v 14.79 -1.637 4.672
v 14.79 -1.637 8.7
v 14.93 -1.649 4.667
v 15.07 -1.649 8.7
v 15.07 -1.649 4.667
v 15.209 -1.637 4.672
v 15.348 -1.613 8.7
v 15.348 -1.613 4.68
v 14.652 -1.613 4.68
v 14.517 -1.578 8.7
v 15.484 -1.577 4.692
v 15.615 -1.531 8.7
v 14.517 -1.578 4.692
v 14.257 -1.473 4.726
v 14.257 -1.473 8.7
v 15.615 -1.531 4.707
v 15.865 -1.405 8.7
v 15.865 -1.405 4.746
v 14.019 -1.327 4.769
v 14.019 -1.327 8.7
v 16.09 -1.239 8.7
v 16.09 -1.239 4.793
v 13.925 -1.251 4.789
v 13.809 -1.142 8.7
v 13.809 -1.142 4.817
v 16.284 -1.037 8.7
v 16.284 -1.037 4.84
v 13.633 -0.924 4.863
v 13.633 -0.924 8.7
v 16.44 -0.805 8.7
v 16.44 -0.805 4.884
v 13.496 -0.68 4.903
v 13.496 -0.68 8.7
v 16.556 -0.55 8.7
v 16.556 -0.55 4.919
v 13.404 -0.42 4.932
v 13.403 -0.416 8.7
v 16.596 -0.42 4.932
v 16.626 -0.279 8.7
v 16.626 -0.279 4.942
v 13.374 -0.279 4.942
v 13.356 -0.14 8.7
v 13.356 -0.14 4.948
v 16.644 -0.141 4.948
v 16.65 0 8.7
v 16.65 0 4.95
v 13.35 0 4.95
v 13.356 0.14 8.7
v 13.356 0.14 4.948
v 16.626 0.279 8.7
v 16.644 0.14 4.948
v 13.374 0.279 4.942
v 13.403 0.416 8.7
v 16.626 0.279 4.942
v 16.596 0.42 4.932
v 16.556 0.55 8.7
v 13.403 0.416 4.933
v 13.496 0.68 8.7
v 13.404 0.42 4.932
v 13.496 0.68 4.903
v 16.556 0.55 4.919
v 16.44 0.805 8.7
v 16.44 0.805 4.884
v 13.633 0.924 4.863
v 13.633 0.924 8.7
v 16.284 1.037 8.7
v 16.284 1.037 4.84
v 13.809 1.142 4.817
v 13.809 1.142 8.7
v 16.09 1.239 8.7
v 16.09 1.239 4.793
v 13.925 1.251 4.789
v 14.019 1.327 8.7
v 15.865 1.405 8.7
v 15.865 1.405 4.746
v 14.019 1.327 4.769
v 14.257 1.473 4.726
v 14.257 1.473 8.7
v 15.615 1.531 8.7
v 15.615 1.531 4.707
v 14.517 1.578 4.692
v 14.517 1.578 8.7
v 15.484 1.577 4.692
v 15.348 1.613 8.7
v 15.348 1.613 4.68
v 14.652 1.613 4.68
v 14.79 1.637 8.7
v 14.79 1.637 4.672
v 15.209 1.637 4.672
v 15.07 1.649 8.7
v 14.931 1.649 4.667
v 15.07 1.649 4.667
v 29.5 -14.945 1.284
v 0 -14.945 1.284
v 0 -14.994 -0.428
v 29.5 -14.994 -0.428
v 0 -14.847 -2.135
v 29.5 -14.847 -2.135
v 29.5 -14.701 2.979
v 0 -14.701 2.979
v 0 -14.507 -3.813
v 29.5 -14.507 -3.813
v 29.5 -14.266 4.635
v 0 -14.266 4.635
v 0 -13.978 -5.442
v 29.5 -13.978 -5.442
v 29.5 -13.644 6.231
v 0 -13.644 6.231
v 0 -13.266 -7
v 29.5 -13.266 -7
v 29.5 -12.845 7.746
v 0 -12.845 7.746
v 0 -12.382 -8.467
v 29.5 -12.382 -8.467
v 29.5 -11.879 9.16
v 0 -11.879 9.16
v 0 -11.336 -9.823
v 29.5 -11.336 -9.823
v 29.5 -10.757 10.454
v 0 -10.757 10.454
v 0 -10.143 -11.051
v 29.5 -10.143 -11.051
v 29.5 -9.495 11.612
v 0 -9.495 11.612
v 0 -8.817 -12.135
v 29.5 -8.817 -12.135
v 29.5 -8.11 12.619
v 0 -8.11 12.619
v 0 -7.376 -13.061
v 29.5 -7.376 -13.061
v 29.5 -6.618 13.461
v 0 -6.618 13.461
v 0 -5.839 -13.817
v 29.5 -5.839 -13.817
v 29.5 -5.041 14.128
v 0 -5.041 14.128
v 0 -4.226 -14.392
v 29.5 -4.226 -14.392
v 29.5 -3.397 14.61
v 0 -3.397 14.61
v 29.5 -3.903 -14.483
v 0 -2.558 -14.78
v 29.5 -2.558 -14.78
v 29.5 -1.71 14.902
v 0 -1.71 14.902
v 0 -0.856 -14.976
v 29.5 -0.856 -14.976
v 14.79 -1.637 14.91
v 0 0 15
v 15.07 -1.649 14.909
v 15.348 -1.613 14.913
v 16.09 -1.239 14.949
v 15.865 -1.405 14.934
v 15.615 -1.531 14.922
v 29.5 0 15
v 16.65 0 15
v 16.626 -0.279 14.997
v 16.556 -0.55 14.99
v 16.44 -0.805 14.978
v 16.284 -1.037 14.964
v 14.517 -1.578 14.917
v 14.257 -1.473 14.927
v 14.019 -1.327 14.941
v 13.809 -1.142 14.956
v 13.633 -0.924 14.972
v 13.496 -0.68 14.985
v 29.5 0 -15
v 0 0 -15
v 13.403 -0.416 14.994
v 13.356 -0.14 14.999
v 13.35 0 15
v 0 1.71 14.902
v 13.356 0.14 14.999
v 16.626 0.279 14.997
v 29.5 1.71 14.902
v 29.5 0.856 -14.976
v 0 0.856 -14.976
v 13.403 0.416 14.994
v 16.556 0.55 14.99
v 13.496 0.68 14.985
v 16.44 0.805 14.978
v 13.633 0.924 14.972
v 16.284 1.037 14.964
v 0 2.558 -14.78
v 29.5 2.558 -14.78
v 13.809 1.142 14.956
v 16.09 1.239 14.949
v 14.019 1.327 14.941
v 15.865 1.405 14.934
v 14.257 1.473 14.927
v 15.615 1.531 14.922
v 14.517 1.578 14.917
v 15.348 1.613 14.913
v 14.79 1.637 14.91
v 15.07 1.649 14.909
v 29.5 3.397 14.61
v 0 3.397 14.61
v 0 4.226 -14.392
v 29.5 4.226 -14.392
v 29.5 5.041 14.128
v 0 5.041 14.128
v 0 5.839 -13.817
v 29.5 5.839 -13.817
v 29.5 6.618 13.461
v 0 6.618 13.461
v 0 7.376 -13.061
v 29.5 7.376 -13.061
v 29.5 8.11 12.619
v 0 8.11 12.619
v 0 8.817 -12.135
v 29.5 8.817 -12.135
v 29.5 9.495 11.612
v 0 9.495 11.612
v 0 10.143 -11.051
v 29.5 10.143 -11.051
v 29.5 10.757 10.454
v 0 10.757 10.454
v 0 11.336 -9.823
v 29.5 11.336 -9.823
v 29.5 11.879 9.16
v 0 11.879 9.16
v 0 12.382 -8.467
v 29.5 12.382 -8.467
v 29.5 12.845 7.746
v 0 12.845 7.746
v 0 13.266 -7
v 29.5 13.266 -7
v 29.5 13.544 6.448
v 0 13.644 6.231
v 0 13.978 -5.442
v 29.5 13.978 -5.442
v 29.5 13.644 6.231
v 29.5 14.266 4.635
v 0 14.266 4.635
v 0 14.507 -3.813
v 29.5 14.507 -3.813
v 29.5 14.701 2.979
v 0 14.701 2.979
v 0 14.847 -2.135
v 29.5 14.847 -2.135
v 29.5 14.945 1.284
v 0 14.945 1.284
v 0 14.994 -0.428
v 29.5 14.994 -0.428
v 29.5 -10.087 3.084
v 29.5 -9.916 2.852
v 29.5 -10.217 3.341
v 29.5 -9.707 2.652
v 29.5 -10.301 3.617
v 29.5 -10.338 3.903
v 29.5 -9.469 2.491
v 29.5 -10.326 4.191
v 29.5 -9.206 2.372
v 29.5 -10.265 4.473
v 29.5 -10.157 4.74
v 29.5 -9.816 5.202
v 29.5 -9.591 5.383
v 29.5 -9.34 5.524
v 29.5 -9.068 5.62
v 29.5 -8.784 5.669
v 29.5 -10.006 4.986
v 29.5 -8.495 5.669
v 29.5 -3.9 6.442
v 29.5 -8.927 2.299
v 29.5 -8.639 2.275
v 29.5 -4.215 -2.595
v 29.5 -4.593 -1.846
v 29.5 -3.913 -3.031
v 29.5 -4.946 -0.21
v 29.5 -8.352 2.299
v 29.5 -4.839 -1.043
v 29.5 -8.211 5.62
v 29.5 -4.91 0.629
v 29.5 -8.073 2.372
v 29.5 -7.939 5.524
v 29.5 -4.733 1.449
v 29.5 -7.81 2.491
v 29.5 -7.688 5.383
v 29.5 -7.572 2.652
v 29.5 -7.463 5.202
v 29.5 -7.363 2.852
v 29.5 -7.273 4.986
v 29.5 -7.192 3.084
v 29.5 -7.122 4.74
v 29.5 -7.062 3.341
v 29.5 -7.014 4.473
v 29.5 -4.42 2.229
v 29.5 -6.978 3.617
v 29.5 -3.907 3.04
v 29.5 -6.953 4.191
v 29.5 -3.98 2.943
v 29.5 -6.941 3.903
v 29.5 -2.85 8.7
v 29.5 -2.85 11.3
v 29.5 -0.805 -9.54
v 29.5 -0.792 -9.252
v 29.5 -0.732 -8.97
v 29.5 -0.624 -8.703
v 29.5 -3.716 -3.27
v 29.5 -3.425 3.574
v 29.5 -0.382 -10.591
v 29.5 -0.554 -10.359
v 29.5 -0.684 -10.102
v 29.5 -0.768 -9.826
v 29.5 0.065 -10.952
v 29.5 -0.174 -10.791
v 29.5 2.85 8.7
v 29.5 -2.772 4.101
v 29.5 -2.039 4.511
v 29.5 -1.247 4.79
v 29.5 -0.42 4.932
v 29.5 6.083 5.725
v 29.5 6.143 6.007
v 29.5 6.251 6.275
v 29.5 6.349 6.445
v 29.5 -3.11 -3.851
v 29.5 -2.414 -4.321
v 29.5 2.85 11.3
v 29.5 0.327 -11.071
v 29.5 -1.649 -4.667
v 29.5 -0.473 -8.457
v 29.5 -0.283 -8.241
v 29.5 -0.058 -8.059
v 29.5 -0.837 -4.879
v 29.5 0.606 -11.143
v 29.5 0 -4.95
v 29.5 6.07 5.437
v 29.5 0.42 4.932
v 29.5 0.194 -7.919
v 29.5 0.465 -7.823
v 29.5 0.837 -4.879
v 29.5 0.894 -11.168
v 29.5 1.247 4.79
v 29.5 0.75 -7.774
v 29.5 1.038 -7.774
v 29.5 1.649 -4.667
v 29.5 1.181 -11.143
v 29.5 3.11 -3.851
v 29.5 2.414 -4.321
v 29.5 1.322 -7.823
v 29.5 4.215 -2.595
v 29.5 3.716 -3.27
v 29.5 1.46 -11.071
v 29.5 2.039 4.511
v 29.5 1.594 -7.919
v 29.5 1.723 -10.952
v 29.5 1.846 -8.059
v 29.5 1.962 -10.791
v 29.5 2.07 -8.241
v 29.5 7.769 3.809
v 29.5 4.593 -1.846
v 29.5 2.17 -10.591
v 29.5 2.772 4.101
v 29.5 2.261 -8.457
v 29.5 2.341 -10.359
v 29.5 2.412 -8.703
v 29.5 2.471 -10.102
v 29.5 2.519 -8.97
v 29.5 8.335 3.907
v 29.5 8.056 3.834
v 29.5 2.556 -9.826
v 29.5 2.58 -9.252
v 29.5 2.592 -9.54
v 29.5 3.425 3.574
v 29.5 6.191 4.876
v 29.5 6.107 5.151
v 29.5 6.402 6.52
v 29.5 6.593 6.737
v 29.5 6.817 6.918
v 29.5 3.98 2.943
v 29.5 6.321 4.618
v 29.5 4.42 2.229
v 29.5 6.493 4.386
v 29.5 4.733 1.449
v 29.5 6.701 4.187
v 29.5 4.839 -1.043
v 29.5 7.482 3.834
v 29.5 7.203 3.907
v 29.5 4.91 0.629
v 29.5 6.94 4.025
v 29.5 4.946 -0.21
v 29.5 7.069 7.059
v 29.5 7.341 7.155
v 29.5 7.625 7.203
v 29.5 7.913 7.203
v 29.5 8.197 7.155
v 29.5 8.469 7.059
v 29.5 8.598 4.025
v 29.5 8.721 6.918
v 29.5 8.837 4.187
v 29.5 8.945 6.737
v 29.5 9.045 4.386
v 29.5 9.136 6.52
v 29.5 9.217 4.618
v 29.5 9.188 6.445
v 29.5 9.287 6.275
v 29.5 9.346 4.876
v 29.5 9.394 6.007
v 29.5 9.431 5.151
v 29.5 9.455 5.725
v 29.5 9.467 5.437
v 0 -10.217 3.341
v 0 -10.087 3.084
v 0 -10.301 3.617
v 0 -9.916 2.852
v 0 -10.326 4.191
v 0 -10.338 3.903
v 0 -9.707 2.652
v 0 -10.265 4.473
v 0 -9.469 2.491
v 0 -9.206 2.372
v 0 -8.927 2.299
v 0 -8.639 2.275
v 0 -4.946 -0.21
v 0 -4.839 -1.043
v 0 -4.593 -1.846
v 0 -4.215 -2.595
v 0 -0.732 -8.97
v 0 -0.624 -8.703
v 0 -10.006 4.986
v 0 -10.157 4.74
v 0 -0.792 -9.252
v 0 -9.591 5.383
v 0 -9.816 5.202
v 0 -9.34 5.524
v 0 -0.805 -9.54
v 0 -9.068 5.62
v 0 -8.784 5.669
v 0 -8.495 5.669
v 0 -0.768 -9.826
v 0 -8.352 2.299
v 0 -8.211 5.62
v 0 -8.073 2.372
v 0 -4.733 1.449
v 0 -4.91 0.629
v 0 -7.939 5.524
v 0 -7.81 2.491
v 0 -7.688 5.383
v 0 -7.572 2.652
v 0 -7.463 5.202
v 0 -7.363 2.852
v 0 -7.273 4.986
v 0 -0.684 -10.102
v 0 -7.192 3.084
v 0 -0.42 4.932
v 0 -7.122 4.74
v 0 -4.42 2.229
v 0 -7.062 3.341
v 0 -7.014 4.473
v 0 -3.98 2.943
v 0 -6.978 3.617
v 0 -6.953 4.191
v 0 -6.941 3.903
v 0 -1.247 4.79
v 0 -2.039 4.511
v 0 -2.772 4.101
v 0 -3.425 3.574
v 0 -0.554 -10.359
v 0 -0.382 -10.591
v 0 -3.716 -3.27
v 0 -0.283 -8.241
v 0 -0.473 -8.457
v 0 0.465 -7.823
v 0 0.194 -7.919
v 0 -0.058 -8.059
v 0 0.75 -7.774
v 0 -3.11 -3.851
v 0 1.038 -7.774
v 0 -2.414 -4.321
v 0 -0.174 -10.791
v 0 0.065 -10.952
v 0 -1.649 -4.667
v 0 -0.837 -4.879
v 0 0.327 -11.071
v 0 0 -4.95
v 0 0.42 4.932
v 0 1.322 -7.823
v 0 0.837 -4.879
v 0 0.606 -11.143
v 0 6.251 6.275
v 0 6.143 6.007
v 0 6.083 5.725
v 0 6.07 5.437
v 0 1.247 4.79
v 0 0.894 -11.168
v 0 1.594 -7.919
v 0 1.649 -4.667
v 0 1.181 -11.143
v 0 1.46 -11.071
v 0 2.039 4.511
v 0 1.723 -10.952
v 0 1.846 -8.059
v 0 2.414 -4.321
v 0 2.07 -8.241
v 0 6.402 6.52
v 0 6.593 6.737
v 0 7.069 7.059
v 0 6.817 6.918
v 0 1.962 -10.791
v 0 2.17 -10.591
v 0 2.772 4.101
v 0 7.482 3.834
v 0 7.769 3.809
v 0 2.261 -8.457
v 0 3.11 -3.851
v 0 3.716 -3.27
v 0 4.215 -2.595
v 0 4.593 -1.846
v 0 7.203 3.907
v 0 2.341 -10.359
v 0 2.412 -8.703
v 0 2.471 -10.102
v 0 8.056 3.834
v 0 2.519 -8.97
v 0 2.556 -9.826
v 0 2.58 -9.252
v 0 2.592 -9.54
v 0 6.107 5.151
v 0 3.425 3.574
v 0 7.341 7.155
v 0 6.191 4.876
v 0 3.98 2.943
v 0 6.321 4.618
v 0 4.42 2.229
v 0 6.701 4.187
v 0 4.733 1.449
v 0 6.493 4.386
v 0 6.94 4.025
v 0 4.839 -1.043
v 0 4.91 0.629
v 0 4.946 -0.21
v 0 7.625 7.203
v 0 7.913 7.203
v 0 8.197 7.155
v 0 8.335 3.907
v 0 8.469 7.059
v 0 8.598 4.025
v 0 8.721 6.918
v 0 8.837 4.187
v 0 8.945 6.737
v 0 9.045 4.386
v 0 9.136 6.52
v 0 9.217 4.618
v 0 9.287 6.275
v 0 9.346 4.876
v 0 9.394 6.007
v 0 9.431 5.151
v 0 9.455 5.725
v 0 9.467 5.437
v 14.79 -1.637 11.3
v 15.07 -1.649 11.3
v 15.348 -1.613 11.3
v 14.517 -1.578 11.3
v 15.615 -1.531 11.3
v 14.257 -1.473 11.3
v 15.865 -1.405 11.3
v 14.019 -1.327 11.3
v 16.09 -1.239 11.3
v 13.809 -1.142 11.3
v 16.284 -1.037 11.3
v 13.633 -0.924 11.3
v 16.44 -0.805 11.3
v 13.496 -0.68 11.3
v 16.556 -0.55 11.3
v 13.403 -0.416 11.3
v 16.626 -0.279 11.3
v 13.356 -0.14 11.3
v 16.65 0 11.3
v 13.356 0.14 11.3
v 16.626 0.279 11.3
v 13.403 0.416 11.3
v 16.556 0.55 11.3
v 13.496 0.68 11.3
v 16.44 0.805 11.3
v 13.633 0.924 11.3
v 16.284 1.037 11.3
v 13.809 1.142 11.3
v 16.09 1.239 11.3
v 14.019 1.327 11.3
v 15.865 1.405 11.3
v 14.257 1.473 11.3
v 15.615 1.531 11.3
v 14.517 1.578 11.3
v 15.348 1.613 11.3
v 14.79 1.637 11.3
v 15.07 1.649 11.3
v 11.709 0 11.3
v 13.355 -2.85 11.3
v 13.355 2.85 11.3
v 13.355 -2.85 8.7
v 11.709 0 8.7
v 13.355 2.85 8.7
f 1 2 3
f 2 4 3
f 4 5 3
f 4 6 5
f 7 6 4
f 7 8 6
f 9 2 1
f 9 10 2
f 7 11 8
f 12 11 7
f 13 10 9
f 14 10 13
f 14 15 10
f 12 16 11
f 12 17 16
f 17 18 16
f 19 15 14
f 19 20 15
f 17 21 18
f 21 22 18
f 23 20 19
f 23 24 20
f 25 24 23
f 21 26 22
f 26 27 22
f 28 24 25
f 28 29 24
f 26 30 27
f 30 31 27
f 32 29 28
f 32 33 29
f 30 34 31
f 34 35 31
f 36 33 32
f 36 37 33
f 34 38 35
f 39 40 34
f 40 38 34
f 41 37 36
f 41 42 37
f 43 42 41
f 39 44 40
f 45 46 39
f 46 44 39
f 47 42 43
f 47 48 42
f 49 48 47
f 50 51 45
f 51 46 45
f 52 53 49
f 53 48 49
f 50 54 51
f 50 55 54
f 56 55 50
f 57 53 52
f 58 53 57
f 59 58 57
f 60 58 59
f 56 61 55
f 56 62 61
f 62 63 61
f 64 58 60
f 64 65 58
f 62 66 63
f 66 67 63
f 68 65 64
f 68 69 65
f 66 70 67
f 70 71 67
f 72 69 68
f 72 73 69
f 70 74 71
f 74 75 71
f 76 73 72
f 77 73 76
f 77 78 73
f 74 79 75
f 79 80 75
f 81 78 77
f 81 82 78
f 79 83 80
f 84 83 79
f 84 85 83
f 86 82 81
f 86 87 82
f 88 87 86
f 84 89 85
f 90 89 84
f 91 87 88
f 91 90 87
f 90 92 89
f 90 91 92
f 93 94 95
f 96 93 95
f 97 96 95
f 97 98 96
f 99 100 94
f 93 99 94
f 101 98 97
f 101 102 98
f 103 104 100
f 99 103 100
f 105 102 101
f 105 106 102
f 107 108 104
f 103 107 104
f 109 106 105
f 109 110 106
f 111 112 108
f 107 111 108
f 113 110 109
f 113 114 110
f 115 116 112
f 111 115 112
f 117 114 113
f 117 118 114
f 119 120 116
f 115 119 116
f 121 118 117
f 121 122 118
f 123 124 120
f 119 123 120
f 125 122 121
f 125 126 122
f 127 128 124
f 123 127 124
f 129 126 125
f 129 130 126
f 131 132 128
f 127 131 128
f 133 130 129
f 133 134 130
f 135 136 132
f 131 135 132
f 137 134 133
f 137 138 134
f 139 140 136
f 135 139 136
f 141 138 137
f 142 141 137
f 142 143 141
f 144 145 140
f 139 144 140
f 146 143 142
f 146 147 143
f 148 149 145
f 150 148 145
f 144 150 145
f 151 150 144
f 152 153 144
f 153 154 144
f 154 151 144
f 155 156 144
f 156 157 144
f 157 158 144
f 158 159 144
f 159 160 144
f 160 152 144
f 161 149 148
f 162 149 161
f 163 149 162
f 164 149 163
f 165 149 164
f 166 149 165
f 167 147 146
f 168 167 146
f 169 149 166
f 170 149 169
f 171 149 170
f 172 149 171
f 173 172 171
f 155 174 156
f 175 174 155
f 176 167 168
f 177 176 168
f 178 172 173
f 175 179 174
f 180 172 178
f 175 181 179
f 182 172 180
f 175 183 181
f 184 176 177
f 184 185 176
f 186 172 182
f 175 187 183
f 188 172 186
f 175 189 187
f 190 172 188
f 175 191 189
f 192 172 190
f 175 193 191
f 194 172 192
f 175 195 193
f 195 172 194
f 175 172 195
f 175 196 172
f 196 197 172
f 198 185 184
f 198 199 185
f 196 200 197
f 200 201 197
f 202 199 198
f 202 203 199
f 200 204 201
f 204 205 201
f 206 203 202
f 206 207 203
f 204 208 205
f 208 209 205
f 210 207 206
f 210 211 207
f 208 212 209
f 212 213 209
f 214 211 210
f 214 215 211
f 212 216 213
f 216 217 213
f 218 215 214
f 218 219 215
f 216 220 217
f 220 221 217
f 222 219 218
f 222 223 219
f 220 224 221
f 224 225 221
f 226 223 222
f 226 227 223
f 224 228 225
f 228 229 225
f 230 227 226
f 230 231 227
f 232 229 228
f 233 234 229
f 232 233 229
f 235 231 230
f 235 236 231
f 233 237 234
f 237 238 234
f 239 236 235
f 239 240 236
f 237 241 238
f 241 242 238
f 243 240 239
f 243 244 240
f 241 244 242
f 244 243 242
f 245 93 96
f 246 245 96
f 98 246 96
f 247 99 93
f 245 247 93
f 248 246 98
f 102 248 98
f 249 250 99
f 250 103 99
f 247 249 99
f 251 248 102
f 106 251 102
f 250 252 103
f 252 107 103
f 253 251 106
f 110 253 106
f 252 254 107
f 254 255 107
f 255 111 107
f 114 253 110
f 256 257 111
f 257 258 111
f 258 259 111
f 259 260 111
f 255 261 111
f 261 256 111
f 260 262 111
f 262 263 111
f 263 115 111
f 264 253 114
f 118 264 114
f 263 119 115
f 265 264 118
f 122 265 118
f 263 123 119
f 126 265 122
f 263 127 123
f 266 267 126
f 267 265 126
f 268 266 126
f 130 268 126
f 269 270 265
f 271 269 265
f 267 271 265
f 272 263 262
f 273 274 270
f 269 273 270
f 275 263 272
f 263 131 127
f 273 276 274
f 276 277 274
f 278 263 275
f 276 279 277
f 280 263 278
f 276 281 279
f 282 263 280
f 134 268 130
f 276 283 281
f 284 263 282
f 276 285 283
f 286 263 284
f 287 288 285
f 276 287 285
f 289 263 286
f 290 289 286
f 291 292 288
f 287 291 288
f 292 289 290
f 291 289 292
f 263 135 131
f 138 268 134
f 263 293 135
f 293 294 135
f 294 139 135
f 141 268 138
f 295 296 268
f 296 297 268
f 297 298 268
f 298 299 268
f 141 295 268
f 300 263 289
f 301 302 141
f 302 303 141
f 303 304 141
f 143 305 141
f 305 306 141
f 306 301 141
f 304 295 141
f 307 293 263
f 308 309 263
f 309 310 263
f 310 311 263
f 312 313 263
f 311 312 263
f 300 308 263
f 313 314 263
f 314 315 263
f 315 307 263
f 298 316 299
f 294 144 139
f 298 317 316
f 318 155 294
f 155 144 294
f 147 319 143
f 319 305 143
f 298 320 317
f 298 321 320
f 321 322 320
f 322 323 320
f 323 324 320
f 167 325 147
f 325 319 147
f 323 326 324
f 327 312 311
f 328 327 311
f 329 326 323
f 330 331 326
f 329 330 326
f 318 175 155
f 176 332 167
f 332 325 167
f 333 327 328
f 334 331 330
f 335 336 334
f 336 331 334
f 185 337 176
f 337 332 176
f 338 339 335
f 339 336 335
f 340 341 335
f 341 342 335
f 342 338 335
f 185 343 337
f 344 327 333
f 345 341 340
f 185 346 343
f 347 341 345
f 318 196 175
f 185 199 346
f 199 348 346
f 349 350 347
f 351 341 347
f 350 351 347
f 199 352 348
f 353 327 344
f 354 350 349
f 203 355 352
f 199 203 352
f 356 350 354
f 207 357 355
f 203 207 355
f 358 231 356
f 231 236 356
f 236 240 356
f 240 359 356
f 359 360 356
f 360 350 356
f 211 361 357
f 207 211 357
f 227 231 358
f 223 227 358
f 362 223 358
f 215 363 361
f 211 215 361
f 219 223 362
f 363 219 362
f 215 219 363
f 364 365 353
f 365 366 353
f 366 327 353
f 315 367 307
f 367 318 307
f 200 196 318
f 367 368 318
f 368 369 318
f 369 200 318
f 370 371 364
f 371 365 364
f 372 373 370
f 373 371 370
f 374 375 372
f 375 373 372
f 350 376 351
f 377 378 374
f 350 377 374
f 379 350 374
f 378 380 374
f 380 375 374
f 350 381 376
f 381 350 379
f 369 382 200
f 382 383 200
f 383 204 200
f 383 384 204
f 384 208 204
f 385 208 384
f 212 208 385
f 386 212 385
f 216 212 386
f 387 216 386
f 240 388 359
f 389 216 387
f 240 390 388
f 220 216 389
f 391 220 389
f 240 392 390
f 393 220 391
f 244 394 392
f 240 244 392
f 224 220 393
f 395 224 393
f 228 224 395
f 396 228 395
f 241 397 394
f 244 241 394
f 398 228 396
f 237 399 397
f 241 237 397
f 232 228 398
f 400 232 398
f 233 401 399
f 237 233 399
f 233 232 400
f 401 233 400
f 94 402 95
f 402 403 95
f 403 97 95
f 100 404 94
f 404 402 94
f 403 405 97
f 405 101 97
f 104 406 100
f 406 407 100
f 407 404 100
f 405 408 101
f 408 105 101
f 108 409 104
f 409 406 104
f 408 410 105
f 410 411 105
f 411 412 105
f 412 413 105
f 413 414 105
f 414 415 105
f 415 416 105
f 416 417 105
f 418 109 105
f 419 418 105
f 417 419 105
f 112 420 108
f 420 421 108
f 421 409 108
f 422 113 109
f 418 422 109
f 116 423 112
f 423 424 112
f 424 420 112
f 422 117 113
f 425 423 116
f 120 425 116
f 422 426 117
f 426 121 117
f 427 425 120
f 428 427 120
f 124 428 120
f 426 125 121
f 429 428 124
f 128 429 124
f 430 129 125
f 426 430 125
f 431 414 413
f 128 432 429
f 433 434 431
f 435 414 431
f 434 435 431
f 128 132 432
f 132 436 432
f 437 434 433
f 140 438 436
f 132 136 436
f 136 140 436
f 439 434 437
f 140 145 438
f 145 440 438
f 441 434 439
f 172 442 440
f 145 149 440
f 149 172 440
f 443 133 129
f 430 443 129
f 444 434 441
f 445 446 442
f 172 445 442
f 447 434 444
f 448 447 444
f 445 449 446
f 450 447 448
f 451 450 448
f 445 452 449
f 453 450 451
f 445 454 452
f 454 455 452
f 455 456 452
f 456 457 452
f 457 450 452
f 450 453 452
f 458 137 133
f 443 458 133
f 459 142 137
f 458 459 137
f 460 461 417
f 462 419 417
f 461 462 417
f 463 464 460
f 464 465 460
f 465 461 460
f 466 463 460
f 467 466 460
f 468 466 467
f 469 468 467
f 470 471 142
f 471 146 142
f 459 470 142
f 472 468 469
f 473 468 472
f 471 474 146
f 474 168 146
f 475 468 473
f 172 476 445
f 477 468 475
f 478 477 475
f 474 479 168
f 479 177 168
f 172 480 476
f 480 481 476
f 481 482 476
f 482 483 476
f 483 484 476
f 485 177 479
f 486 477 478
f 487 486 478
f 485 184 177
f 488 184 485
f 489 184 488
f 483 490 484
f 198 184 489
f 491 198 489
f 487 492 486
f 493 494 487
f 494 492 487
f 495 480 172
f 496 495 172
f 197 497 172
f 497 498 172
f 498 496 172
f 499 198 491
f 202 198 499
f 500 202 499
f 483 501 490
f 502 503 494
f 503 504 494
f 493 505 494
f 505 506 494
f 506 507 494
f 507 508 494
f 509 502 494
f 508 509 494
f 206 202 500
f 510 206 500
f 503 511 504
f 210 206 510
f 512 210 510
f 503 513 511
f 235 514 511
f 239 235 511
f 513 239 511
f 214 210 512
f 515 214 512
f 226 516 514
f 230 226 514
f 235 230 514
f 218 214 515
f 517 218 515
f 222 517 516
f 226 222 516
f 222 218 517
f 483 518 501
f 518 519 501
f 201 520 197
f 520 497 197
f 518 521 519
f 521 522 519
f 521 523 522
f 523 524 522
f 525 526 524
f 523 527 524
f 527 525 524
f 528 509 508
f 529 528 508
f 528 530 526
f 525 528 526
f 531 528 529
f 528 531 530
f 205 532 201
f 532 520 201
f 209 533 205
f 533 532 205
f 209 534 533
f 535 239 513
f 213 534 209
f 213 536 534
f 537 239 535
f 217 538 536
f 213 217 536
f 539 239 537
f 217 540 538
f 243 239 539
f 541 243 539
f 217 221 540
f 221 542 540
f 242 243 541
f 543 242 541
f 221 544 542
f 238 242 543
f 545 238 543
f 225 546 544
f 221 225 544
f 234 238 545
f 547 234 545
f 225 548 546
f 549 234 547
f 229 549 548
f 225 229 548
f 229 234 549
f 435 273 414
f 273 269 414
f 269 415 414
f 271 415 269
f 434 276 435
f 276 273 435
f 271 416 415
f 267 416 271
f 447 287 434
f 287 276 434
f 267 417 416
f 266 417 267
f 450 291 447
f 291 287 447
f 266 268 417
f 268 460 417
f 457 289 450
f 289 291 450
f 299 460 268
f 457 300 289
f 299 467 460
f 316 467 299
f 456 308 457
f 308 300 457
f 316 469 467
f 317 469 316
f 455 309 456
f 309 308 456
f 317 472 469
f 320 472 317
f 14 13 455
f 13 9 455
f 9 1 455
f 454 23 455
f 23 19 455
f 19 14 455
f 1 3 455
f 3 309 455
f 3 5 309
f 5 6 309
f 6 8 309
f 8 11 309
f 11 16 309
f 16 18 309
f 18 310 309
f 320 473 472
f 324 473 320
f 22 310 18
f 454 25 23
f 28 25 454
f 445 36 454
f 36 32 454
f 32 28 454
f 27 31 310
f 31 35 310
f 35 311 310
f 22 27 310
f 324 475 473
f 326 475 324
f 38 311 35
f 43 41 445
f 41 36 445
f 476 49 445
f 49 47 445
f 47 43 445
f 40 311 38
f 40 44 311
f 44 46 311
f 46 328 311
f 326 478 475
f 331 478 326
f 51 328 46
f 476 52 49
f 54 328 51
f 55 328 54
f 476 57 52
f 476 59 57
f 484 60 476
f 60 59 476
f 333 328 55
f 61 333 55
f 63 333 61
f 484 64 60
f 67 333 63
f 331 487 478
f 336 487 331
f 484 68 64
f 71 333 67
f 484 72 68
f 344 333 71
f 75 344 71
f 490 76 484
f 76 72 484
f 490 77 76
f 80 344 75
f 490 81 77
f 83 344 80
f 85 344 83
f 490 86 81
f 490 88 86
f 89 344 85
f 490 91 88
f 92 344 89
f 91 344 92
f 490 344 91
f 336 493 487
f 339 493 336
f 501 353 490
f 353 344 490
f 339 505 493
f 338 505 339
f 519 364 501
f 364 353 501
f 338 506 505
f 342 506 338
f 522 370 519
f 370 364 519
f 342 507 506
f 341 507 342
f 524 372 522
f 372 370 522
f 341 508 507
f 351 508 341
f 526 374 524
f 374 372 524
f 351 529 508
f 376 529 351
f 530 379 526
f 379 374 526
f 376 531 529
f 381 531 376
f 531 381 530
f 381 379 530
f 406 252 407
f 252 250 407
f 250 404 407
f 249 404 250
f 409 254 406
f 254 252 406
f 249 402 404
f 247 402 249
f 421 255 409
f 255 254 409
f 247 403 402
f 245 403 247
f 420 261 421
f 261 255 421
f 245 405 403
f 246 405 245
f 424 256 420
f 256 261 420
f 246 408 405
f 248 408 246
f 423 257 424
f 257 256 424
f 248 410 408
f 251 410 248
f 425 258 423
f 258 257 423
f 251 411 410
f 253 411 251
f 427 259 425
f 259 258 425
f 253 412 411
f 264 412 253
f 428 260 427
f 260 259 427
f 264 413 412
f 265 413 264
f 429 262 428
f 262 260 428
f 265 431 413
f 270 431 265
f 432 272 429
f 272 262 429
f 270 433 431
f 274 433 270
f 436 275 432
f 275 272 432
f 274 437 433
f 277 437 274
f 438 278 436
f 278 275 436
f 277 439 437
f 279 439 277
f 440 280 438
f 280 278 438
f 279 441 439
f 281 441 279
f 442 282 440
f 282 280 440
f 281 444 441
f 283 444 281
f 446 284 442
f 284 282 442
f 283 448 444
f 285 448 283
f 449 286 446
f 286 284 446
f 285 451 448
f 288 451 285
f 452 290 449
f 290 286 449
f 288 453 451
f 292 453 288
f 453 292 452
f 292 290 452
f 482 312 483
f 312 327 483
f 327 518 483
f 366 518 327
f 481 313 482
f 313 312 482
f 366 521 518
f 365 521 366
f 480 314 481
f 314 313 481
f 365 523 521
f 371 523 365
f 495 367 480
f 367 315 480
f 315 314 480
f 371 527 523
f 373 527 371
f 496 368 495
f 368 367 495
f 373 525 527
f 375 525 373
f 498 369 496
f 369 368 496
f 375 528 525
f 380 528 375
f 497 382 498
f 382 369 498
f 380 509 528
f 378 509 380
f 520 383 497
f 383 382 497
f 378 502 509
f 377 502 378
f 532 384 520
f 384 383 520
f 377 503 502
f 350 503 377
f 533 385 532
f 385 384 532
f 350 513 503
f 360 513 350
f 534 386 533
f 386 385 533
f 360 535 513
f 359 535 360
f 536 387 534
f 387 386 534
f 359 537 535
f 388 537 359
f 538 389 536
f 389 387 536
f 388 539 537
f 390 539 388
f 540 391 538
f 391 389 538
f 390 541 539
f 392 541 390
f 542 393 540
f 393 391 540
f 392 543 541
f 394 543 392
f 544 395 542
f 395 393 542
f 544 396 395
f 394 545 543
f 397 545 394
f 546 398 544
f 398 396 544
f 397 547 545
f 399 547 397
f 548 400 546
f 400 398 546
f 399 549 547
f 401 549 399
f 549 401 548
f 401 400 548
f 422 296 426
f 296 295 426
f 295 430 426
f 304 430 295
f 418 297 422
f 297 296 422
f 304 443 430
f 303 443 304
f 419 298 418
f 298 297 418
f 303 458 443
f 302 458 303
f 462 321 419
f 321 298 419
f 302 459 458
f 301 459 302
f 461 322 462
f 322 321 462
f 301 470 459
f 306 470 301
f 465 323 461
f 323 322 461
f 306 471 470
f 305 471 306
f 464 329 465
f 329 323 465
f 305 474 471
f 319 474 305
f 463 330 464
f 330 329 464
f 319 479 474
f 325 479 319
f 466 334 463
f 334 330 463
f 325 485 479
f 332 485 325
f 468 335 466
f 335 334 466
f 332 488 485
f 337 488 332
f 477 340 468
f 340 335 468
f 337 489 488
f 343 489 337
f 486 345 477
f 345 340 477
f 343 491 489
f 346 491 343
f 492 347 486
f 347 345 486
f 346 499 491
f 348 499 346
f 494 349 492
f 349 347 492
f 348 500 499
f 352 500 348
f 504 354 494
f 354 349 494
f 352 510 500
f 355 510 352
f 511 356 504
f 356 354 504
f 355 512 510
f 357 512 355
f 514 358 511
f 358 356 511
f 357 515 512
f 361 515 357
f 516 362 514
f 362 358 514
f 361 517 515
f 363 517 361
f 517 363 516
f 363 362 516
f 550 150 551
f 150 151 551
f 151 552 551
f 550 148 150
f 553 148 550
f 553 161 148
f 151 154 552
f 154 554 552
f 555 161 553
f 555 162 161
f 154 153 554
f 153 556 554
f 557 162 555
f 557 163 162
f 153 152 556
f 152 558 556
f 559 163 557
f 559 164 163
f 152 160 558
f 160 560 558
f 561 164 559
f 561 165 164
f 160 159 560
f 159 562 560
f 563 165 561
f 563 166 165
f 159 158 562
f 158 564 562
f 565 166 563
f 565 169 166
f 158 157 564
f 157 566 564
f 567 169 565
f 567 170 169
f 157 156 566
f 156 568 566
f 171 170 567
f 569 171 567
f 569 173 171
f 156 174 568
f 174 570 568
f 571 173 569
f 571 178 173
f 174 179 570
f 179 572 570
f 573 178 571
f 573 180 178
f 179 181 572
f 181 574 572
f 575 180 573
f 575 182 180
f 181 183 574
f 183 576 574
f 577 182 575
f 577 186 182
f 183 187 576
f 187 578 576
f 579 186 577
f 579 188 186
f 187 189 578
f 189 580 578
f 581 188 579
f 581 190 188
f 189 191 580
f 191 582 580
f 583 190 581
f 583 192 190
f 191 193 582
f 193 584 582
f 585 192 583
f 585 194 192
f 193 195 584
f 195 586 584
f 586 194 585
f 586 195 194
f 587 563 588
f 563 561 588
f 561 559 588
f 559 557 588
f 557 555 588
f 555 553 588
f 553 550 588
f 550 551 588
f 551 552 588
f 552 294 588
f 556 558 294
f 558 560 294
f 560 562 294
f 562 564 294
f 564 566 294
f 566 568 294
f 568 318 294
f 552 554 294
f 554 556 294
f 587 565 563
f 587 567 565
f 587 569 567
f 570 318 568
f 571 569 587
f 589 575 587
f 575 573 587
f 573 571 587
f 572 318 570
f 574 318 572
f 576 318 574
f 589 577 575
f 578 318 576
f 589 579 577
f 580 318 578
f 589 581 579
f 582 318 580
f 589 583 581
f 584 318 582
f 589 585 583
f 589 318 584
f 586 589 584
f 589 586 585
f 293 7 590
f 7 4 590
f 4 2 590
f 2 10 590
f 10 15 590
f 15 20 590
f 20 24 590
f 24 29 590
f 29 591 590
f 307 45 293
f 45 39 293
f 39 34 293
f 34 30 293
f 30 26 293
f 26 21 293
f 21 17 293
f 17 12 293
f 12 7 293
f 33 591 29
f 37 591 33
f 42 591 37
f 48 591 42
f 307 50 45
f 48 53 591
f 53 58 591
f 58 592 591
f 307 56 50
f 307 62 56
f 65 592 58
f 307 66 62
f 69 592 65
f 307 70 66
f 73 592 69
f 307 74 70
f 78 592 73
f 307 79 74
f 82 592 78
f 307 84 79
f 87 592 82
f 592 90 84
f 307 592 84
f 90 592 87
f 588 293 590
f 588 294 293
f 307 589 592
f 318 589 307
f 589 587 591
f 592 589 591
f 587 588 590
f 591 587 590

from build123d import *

# Parameters (mm, degrees)
SKETCH1_R               = 15
BOSS_EXTRUDE1_DEPTH     = 29.5
SKETCH2_R               = 4.95
SKETCH2_R_2             = 1.7
CUT_EXTRUDE1_DEPTH      = 34
SKETCH3_R               = 1.65
CUT_EXTRUDE2_DEPTH      = 12
CUT_EXTRUDE3_DEPTH      = 1.3
CUT_EXTRUDE3_DEPTH_BACK = 1.3
SKETCH5_W               = 5.7
SKETCH5_H               = 2.6
CUT_EXTRUDE4_DEPTH      = 16


with BuildPart() as part:
    # Sketch1 → Boss-Extrude1 (new body)
    with BuildSketch(Plane.YZ):
        Circle(SKETCH1_R)
    extrude(amount=BOSS_EXTRUDE1_DEPTH)

    # Sketch2 → Cut-Extrude1 (cut)
    with BuildSketch(Plane.YZ.offset(29.5)):
        Circle(SKETCH2_R)
        with Locations((-8.639482257, 3.974851738)):
            Circle(SKETCH2_R_2)
        with Locations((7.768907949, 5.509495297)):
            Circle(SKETCH2_R_2)
        with Locations((0.893753154, -9.467909236)):
            Circle(SKETCH2_R_2)
    extrude(amount=-CUT_EXTRUDE1_DEPTH, mode=Mode.SUBTRACT)

    # Sketch3 → Cut-Extrude2 (cut)
    with BuildSketch(Plane(origin=(0, 0, 15), x_dir=(0, 1, 0), z_dir=(0, 0, 1))):
        with Locations((0, -15)):
            Circle(SKETCH3_R)
    extrude(amount=-CUT_EXTRUDE2_DEPTH, mode=Mode.SUBTRACT)

    # Sketch4 → Cut-Extrude3 (cut, two sides: drawn at the far end of the back side and taken through both)
    with BuildSketch(Plane(origin=(0, 0, 10), x_dir=(0, 1, 0), z_dir=(0, 0, 1)).offset(-CUT_EXTRUDE3_DEPTH_BACK)):
        Polygon((-2.85, -16.645448267), (0, -18.290896534), (2.85, -16.645448267), (2.85, -13.354551733), (0, -11.709103466), (-2.85, -13.354551733), align=None)
    extrude(amount=CUT_EXTRUDE3_DEPTH + CUT_EXTRUDE3_DEPTH_BACK, mode=Mode.SUBTRACT)

    # Sketch5 → Cut-Extrude4 (cut)
    with BuildSketch(Plane.YZ.offset(29.5)):
        with Locations((0, 10)):
            Rectangle(SKETCH5_W, SKETCH5_H)
    extrude(amount=-CUT_EXTRUDE4_DEPTH, mode=Mode.SUBTRACT)


solid = part.part
